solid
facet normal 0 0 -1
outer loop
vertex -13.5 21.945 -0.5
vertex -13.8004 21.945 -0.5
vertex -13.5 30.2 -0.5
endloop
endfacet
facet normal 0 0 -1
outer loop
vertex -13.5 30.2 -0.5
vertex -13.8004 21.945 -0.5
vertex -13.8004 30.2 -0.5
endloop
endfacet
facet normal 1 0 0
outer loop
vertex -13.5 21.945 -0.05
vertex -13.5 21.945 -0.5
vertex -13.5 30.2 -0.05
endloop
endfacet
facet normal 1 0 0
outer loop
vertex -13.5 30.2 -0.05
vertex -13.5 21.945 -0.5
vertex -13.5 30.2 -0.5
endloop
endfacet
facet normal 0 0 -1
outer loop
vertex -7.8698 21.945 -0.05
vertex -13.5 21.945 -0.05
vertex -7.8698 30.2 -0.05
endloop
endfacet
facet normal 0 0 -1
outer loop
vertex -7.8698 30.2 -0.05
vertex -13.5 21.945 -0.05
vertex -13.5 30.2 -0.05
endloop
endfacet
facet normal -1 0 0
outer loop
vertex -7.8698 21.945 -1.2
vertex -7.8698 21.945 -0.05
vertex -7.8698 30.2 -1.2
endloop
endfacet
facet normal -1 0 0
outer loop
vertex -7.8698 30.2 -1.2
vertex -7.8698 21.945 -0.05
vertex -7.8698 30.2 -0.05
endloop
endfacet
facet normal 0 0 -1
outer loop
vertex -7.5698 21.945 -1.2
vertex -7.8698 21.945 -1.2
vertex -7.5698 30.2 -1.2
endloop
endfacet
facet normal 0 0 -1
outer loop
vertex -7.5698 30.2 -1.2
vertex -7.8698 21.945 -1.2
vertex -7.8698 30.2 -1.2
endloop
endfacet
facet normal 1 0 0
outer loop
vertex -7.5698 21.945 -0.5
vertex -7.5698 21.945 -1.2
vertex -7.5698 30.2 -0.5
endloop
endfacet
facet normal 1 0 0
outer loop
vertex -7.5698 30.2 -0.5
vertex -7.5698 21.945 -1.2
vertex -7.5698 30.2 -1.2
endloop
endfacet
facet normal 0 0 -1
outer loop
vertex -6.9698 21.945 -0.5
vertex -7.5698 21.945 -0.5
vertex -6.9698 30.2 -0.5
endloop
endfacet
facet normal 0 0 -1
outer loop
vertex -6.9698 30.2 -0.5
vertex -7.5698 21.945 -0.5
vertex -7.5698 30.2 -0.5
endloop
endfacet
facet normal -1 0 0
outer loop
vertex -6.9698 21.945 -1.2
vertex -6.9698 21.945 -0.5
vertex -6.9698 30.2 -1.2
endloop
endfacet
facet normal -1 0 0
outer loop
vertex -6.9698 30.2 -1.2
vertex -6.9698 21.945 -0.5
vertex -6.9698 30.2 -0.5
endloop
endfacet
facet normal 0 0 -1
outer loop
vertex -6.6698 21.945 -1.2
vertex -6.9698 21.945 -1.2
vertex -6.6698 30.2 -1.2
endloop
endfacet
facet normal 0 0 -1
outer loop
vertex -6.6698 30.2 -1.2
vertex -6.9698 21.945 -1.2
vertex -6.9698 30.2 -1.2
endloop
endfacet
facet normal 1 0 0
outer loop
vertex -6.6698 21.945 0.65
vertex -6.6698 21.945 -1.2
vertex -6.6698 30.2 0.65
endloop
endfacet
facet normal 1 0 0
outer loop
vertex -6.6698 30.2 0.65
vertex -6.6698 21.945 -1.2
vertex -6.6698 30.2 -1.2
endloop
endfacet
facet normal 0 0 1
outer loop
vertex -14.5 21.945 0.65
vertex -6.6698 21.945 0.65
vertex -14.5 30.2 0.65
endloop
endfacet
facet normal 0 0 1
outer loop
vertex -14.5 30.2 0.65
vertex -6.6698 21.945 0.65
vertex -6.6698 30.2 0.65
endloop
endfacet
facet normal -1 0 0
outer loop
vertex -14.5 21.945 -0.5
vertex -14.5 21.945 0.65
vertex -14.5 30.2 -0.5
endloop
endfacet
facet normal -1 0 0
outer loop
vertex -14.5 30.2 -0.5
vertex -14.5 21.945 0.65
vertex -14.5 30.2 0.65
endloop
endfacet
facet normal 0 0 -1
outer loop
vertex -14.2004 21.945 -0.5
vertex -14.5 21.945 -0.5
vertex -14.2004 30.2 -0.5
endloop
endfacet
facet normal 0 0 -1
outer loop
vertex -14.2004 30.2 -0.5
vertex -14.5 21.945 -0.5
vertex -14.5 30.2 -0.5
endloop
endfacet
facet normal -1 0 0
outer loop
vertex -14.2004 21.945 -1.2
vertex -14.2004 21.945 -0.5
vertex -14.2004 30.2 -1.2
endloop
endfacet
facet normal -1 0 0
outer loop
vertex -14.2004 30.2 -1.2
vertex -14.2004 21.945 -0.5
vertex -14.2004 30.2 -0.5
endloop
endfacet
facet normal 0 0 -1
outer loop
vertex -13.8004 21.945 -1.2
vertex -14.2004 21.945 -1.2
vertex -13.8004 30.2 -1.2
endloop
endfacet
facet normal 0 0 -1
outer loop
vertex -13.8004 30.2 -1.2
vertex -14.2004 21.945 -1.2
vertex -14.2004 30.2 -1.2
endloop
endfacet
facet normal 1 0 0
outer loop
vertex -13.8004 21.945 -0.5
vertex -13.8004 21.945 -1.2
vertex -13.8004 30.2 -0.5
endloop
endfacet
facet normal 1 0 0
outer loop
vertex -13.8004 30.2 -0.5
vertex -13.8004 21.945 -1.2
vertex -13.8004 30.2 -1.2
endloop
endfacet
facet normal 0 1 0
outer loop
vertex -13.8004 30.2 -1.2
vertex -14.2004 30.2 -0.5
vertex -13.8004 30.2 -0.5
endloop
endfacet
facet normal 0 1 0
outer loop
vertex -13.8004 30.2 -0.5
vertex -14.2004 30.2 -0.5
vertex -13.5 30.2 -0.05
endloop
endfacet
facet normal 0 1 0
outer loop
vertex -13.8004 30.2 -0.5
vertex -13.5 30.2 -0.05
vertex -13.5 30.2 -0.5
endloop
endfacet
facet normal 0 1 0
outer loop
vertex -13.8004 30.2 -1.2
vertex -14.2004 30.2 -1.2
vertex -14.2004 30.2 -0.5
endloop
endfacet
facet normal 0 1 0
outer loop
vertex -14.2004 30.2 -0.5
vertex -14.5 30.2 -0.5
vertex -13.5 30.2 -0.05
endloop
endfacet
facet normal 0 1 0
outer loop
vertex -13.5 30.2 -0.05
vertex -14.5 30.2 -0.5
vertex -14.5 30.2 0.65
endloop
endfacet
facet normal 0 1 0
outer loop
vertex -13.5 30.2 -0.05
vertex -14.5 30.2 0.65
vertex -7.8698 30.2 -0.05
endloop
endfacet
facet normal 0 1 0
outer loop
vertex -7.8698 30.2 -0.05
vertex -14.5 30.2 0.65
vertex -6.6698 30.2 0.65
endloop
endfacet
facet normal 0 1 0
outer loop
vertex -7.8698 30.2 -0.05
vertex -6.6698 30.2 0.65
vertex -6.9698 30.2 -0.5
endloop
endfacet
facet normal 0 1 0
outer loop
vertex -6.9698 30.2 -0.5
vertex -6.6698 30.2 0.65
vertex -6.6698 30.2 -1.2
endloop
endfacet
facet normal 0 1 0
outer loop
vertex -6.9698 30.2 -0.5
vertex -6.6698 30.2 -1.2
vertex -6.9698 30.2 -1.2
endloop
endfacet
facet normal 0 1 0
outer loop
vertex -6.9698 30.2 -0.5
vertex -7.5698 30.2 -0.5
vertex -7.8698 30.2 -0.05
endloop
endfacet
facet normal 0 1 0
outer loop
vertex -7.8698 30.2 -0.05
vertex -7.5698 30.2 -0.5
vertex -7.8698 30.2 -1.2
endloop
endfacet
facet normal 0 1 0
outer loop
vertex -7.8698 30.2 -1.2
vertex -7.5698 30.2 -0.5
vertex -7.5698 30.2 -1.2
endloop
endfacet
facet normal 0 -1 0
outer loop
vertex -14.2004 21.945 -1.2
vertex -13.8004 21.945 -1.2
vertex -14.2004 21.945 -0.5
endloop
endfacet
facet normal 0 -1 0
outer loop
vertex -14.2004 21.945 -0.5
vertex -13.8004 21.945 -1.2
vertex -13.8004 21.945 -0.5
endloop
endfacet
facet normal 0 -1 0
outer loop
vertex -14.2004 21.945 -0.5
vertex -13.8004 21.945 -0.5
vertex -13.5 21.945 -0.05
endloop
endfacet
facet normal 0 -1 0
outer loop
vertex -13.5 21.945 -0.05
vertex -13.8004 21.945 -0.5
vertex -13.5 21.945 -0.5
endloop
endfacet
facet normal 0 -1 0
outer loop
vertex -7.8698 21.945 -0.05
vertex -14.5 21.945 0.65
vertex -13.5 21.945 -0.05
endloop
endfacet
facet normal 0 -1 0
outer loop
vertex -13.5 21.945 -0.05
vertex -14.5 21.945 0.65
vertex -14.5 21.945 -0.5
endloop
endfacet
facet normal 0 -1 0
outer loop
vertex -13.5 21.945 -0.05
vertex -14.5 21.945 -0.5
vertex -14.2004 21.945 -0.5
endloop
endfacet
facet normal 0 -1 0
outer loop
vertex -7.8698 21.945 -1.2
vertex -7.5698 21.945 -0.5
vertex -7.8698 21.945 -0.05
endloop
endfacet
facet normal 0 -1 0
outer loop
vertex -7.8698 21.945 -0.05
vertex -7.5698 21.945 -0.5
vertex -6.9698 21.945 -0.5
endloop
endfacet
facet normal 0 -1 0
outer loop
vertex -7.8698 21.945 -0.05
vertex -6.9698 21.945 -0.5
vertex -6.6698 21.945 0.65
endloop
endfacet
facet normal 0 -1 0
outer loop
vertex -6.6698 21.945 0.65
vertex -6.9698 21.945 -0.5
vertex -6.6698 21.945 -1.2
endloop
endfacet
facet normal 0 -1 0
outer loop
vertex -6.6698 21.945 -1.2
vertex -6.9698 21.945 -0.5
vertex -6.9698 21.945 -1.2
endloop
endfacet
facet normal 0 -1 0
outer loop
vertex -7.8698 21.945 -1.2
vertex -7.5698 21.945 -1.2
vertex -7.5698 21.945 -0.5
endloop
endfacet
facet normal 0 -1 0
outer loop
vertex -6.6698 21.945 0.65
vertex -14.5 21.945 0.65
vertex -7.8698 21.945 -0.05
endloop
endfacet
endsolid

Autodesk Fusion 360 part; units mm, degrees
sketch "Sketch1" plane through (0, 22, 0) normal (0, 1, 0) x (-1, 0, 0)
  line L0 (11.5698, 0.25) -> (15.3, 0.25)
  line L1 (15.3, 0.25) -> (15.3, -0.5)
  line L2 (15.3, -0.5) -> (15.6004, -0.5)
  line L3 (15.6004, -0.5) -> (15.6004, -1.2)
  line L4 (15.6004, -1.2) -> (16.0004, -1.2)
  line L5 (16.0004, -1.2) -> (16.0004, -0.5)
  line L6 (16.0004, -0.5) -> (16.3, -0.5)
  line L7 (16.3, -0.5) -> (16.3, 1.05)
  line L8 (16.3, 1.05) -> (5, 1.05)
  line L9 (11.5698, -1.2) -> (11.5698, 0.25)
  line L10 (11.5698, -0.6208) -> (11.2698, -0.6208) construction
  line L11 (11.2698, -0.5) -> (11.2698, -1.2)
  line L12 (11.2698, -0.5) -> (10.5698, -0.5)
  line L13 (10.5698, -0.5) -> (10.5698, -1.2)
  line L14 (10.5698, -0.678) -> (10.2698, -0.678) construction
  line L15 (10.2698, 1.05) -> (10.2698, -1.2)
  line L16 (10.2698, 1.05) -> (16.3, 1.05)
  line L17 (16.3, -0.5) -> (16.0004, -0.5)
  line L18 (16.0004, -1.2) -> (15.6004, -1.2)
  line L19 (15.6004, -0.5) -> (15.3, -0.5)
  line L20 (15.3, 0.25) -> (11.5698, 0.25)
  line L21 (11.5698, -1.2) -> (11.2698, -1.2)
  line L22 (11.5698, -1.2) -> (11.2698, -1.2)
  line L23 (11.2698, -0.5) -> (10.5698, -0.5)
  line L24 (10.5698, -1.2) -> (10.2698, -1.2)
  line L25 (10.2698, 1.05) -> (16.3, 1.05)
  line L26 (16.3, -0.5) -> (16.0004, -0.5)
  line L27 (16.0004, -1.2) -> (15.6004, -1.2)
  line L28 (15.6004, -0.5) -> (15.3, -0.5)
  line L29 (15.3, 0.25) -> (11.5698, 0.25)
  dimension "d14" = 0.3
  dimension "d15" = 0.7
  dimension "d16" = 0.3
extrude "Extrude1" add sketch "Sketch1" along normal blind 8.2 makes body 1
copy_body "Body->Comp1" bodies 1 removing the originals makes body 2 in component "Component"
move_face "OffsetFaces1" offset 0.3 1 faces at (-12.8132, 24.7333, 0.25) on bodies 2 in component "Component"
move_face "OffsetFaces2" offset -0.4 1 faces at (-12.2798, 27.4667, 1.05) on bodies 2 in component "Component"
move_face "OffsetFaces3" offset 3.3 1 faces at (-10.2698, 24.7333, 0.0333) on bodies 2 in component "Component"
move_face "OffsetFaces4" offset -3.3 1 faces at (-10.5698, 24.7333, -0.7333) on bodies 2 in component "Component"
move_face "OffsetFaces5" offset 3.3 1 faces at (-11.2698, 24.7333, -0.7333) on bodies 2 in component "Component"
move_face "OffsetFaces6" offset -3.3 1 faces at (-11.5698, 27.4667, -0.8167) on bodies 2 in component "Component"
move_face "OffsetFaces7" offset -4.2 1 faces at (-10.5132, 22, 0.4167) on bodies 2 in component "Component"
move_face "OffsetFaces8" offset -0.1 1 faces at (-8.2698, 28.8667, -0.4333) on bodies 2 in component "Component"
move_face "OffsetFaces9" offset 0.1 1 faces at (-7.9698, 27.5333, -0.7333) on bodies 2 in component "Component"
move_face "OffsetFaces10" offset 4.255 1 faces at (-10.4798, 26.2, 0.4167) on bodies 2 in component "Component"
move_face "OffsetFaces11" offset 0.3 1 faces at (-6.9698, 24.6967, 0.0333) on bodies 2 in component "Component"
move_face "OffsetFaces12" offset 0.3 1 faces at (-7.8698, 24.6967, -0.7333) on bodies 2 in component "Component"
move_face "OffsetFaces13" offset -0.3 1 faces at (-7.2698, 24.6967, -0.7333) on bodies 2 in component "Component"
move_face "OffsetFaces14" offset -0.3 1 faces at (-8.1698, 24.6967, -0.8167) on bodies 2 in component "Component"
move_face "OffsetFaces15" offset 1.8 2 faces at (-15.3, 24.6967, -0.2) (-15.6004, 24.6967, -0.7333) on bodies 2 in component "Component"
move_face "OffsetFaces16" offset -1.8 2 faces at (-16.0004, 24.6967, -0.9667) (-16.3, 24.6967, -0.1167) on bodies 2 in component "Component"
component "Component" placed x (1, 0, 0) y (0, 1, 0) z (0, 0, 1) at (0, 0, 0)
